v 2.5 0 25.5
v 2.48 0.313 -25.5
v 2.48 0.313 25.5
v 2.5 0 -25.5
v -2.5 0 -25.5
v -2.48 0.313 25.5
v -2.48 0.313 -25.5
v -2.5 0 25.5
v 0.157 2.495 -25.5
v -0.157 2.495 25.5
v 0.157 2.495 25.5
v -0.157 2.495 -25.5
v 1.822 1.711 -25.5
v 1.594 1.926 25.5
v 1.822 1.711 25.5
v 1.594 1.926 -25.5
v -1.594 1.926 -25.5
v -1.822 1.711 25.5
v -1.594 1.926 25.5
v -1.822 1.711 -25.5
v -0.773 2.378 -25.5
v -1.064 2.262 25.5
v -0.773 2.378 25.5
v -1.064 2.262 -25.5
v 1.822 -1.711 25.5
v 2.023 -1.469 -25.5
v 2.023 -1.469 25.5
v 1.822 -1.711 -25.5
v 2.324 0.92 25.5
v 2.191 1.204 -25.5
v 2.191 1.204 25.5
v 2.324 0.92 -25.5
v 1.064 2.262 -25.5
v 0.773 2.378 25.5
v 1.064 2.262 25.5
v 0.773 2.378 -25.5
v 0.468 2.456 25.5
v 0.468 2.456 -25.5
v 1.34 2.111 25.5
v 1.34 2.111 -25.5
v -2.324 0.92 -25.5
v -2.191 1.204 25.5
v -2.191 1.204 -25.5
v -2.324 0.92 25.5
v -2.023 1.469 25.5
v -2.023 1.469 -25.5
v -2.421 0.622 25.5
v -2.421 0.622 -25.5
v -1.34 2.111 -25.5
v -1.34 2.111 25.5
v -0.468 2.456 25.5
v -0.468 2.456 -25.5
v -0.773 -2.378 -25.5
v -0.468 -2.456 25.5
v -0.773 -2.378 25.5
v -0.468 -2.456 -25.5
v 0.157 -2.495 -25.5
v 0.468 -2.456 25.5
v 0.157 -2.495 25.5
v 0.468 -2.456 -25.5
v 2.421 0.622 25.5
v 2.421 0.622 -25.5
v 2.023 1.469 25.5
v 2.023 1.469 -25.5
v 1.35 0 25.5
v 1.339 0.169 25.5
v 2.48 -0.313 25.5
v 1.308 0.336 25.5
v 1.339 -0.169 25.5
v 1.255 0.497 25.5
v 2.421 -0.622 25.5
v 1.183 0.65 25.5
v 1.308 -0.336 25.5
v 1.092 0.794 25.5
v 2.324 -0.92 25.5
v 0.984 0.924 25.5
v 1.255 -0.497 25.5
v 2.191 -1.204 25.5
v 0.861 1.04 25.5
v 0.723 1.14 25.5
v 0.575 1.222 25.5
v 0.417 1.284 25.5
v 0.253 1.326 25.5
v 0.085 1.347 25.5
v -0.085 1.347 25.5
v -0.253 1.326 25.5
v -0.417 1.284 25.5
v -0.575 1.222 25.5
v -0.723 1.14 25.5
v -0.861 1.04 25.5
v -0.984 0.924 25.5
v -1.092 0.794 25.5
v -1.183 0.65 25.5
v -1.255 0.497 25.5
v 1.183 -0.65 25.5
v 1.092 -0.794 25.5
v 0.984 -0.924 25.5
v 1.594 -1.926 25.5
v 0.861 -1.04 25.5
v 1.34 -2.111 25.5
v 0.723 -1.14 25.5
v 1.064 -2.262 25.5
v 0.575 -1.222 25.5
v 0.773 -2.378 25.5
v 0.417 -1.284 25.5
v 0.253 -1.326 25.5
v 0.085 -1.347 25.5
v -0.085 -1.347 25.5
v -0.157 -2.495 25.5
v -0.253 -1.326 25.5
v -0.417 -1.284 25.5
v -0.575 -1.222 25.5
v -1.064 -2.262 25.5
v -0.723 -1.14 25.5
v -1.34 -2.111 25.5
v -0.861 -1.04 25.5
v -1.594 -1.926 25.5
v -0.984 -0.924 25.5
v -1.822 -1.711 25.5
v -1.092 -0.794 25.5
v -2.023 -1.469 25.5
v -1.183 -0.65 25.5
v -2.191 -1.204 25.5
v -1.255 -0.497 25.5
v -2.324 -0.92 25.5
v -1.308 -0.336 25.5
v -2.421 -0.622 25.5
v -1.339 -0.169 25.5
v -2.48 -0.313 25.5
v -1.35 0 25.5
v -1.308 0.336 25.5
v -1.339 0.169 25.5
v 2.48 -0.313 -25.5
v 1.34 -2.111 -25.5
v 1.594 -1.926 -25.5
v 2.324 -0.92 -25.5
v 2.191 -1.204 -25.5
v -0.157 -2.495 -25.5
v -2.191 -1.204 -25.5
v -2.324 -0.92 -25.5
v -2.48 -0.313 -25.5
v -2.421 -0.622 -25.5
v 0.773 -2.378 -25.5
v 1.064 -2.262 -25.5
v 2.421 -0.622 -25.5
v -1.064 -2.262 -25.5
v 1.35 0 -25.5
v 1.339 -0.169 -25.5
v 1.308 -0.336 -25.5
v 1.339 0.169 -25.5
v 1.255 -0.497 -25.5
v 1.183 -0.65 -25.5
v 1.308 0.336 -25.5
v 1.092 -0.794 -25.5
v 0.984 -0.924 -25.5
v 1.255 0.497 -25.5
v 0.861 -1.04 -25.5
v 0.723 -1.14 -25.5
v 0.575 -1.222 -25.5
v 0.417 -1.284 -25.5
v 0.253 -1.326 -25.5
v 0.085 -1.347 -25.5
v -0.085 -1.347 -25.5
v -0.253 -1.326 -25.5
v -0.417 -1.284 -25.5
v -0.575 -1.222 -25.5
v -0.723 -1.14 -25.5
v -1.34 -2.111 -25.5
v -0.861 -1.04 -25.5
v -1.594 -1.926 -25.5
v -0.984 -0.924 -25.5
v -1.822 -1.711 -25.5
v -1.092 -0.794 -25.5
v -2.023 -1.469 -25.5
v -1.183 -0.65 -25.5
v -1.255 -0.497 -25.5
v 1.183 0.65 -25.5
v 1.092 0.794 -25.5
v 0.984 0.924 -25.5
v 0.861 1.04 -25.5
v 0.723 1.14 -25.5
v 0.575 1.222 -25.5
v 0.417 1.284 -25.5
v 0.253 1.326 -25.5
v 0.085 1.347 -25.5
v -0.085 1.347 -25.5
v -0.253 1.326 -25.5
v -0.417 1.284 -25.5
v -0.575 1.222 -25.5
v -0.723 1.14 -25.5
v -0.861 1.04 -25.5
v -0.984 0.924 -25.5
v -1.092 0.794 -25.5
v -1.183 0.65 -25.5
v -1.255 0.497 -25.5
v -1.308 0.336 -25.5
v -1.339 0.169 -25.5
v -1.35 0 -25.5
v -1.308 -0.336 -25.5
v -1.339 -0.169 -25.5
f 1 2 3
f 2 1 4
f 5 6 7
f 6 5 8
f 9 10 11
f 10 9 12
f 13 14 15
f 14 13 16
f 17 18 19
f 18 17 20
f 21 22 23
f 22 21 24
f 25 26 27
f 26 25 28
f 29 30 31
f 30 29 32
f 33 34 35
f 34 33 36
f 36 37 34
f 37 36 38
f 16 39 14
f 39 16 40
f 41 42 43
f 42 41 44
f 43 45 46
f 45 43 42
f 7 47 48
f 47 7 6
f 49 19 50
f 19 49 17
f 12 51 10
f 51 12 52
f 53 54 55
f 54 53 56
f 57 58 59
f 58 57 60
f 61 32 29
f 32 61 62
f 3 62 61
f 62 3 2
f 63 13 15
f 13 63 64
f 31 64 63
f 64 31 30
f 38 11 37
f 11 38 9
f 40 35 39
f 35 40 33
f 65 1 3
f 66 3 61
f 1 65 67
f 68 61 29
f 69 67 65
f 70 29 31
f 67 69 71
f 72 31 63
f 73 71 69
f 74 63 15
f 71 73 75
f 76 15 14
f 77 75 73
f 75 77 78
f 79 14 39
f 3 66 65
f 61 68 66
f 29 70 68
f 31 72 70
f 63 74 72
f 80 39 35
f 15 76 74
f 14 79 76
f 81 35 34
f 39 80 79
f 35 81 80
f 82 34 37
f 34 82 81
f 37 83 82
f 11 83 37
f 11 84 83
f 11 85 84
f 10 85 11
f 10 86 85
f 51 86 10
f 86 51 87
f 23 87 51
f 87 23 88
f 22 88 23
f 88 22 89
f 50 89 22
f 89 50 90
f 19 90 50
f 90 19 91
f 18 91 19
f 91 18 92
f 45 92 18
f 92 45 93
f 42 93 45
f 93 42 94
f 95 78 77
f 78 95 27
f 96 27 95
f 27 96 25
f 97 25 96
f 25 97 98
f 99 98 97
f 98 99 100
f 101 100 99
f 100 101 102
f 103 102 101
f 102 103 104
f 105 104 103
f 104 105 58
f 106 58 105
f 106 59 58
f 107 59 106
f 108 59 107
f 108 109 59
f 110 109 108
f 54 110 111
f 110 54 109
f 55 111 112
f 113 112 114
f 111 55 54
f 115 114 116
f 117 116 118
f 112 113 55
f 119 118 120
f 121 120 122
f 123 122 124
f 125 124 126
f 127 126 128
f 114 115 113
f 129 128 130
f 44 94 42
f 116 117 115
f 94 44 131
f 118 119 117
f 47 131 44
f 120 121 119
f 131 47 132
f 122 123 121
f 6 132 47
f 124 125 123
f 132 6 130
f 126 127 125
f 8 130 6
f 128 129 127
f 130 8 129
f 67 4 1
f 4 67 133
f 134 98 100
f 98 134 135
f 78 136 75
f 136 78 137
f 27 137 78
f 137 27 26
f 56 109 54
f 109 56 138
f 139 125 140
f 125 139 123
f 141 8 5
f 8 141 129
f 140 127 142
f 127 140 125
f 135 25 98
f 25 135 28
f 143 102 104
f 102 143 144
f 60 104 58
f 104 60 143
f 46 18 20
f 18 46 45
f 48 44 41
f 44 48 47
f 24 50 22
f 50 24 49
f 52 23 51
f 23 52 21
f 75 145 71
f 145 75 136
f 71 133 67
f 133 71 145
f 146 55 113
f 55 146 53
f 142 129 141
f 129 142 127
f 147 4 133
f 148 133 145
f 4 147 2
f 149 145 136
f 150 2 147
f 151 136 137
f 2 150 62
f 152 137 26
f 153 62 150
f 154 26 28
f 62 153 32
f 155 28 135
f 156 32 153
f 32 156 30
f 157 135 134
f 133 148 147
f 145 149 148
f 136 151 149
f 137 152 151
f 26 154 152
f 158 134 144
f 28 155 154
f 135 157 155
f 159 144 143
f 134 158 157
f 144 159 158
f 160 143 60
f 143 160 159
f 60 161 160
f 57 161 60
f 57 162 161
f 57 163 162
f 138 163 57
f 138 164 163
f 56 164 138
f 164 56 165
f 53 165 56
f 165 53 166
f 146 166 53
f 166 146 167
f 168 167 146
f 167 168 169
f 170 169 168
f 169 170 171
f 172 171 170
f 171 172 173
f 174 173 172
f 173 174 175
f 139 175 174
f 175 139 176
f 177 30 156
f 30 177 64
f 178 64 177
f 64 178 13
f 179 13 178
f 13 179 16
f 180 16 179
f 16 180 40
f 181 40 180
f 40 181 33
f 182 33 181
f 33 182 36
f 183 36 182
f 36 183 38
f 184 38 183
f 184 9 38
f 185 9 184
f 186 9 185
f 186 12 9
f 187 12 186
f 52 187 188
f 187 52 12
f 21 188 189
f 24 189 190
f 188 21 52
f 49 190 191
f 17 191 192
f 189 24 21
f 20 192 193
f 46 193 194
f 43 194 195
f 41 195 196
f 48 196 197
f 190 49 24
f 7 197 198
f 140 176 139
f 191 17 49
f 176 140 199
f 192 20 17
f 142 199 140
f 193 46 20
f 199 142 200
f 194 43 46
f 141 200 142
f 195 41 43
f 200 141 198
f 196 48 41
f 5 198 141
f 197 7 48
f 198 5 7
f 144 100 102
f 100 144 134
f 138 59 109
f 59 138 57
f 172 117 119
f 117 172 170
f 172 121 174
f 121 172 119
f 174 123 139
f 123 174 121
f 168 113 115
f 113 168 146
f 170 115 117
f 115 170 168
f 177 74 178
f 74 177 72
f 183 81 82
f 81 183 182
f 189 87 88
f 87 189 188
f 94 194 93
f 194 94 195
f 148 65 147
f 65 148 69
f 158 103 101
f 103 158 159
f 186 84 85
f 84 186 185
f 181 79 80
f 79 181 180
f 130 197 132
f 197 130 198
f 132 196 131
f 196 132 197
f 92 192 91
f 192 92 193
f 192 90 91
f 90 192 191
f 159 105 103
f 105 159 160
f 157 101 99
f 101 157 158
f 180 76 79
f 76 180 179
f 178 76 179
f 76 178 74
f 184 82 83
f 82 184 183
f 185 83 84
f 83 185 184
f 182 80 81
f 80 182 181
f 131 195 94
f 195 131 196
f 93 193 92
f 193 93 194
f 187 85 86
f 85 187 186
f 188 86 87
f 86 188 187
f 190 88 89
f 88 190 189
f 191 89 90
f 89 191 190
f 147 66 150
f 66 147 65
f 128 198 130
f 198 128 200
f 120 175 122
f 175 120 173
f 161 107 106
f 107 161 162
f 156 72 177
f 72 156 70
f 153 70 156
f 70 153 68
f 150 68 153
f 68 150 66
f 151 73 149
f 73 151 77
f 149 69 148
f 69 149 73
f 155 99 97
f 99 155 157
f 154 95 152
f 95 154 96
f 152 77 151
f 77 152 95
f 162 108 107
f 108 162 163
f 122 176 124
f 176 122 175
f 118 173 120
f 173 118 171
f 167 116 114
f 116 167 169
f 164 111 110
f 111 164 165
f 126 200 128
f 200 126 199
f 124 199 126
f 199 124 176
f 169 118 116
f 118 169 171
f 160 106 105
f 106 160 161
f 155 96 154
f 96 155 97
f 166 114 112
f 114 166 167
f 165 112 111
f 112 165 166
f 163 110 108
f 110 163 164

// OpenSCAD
$fn = 50;


difference() {
	union() {
		translate(v = [0, 0, -25.5000000000]) {
			cylinder(h = 51, r = 2.5000000000);
		}
	}
	union() {
		translate(v = [0, 0, -100.0000000000]) {
			cylinder(h = 200, r = 1.3500000000);
		}
	}
}
